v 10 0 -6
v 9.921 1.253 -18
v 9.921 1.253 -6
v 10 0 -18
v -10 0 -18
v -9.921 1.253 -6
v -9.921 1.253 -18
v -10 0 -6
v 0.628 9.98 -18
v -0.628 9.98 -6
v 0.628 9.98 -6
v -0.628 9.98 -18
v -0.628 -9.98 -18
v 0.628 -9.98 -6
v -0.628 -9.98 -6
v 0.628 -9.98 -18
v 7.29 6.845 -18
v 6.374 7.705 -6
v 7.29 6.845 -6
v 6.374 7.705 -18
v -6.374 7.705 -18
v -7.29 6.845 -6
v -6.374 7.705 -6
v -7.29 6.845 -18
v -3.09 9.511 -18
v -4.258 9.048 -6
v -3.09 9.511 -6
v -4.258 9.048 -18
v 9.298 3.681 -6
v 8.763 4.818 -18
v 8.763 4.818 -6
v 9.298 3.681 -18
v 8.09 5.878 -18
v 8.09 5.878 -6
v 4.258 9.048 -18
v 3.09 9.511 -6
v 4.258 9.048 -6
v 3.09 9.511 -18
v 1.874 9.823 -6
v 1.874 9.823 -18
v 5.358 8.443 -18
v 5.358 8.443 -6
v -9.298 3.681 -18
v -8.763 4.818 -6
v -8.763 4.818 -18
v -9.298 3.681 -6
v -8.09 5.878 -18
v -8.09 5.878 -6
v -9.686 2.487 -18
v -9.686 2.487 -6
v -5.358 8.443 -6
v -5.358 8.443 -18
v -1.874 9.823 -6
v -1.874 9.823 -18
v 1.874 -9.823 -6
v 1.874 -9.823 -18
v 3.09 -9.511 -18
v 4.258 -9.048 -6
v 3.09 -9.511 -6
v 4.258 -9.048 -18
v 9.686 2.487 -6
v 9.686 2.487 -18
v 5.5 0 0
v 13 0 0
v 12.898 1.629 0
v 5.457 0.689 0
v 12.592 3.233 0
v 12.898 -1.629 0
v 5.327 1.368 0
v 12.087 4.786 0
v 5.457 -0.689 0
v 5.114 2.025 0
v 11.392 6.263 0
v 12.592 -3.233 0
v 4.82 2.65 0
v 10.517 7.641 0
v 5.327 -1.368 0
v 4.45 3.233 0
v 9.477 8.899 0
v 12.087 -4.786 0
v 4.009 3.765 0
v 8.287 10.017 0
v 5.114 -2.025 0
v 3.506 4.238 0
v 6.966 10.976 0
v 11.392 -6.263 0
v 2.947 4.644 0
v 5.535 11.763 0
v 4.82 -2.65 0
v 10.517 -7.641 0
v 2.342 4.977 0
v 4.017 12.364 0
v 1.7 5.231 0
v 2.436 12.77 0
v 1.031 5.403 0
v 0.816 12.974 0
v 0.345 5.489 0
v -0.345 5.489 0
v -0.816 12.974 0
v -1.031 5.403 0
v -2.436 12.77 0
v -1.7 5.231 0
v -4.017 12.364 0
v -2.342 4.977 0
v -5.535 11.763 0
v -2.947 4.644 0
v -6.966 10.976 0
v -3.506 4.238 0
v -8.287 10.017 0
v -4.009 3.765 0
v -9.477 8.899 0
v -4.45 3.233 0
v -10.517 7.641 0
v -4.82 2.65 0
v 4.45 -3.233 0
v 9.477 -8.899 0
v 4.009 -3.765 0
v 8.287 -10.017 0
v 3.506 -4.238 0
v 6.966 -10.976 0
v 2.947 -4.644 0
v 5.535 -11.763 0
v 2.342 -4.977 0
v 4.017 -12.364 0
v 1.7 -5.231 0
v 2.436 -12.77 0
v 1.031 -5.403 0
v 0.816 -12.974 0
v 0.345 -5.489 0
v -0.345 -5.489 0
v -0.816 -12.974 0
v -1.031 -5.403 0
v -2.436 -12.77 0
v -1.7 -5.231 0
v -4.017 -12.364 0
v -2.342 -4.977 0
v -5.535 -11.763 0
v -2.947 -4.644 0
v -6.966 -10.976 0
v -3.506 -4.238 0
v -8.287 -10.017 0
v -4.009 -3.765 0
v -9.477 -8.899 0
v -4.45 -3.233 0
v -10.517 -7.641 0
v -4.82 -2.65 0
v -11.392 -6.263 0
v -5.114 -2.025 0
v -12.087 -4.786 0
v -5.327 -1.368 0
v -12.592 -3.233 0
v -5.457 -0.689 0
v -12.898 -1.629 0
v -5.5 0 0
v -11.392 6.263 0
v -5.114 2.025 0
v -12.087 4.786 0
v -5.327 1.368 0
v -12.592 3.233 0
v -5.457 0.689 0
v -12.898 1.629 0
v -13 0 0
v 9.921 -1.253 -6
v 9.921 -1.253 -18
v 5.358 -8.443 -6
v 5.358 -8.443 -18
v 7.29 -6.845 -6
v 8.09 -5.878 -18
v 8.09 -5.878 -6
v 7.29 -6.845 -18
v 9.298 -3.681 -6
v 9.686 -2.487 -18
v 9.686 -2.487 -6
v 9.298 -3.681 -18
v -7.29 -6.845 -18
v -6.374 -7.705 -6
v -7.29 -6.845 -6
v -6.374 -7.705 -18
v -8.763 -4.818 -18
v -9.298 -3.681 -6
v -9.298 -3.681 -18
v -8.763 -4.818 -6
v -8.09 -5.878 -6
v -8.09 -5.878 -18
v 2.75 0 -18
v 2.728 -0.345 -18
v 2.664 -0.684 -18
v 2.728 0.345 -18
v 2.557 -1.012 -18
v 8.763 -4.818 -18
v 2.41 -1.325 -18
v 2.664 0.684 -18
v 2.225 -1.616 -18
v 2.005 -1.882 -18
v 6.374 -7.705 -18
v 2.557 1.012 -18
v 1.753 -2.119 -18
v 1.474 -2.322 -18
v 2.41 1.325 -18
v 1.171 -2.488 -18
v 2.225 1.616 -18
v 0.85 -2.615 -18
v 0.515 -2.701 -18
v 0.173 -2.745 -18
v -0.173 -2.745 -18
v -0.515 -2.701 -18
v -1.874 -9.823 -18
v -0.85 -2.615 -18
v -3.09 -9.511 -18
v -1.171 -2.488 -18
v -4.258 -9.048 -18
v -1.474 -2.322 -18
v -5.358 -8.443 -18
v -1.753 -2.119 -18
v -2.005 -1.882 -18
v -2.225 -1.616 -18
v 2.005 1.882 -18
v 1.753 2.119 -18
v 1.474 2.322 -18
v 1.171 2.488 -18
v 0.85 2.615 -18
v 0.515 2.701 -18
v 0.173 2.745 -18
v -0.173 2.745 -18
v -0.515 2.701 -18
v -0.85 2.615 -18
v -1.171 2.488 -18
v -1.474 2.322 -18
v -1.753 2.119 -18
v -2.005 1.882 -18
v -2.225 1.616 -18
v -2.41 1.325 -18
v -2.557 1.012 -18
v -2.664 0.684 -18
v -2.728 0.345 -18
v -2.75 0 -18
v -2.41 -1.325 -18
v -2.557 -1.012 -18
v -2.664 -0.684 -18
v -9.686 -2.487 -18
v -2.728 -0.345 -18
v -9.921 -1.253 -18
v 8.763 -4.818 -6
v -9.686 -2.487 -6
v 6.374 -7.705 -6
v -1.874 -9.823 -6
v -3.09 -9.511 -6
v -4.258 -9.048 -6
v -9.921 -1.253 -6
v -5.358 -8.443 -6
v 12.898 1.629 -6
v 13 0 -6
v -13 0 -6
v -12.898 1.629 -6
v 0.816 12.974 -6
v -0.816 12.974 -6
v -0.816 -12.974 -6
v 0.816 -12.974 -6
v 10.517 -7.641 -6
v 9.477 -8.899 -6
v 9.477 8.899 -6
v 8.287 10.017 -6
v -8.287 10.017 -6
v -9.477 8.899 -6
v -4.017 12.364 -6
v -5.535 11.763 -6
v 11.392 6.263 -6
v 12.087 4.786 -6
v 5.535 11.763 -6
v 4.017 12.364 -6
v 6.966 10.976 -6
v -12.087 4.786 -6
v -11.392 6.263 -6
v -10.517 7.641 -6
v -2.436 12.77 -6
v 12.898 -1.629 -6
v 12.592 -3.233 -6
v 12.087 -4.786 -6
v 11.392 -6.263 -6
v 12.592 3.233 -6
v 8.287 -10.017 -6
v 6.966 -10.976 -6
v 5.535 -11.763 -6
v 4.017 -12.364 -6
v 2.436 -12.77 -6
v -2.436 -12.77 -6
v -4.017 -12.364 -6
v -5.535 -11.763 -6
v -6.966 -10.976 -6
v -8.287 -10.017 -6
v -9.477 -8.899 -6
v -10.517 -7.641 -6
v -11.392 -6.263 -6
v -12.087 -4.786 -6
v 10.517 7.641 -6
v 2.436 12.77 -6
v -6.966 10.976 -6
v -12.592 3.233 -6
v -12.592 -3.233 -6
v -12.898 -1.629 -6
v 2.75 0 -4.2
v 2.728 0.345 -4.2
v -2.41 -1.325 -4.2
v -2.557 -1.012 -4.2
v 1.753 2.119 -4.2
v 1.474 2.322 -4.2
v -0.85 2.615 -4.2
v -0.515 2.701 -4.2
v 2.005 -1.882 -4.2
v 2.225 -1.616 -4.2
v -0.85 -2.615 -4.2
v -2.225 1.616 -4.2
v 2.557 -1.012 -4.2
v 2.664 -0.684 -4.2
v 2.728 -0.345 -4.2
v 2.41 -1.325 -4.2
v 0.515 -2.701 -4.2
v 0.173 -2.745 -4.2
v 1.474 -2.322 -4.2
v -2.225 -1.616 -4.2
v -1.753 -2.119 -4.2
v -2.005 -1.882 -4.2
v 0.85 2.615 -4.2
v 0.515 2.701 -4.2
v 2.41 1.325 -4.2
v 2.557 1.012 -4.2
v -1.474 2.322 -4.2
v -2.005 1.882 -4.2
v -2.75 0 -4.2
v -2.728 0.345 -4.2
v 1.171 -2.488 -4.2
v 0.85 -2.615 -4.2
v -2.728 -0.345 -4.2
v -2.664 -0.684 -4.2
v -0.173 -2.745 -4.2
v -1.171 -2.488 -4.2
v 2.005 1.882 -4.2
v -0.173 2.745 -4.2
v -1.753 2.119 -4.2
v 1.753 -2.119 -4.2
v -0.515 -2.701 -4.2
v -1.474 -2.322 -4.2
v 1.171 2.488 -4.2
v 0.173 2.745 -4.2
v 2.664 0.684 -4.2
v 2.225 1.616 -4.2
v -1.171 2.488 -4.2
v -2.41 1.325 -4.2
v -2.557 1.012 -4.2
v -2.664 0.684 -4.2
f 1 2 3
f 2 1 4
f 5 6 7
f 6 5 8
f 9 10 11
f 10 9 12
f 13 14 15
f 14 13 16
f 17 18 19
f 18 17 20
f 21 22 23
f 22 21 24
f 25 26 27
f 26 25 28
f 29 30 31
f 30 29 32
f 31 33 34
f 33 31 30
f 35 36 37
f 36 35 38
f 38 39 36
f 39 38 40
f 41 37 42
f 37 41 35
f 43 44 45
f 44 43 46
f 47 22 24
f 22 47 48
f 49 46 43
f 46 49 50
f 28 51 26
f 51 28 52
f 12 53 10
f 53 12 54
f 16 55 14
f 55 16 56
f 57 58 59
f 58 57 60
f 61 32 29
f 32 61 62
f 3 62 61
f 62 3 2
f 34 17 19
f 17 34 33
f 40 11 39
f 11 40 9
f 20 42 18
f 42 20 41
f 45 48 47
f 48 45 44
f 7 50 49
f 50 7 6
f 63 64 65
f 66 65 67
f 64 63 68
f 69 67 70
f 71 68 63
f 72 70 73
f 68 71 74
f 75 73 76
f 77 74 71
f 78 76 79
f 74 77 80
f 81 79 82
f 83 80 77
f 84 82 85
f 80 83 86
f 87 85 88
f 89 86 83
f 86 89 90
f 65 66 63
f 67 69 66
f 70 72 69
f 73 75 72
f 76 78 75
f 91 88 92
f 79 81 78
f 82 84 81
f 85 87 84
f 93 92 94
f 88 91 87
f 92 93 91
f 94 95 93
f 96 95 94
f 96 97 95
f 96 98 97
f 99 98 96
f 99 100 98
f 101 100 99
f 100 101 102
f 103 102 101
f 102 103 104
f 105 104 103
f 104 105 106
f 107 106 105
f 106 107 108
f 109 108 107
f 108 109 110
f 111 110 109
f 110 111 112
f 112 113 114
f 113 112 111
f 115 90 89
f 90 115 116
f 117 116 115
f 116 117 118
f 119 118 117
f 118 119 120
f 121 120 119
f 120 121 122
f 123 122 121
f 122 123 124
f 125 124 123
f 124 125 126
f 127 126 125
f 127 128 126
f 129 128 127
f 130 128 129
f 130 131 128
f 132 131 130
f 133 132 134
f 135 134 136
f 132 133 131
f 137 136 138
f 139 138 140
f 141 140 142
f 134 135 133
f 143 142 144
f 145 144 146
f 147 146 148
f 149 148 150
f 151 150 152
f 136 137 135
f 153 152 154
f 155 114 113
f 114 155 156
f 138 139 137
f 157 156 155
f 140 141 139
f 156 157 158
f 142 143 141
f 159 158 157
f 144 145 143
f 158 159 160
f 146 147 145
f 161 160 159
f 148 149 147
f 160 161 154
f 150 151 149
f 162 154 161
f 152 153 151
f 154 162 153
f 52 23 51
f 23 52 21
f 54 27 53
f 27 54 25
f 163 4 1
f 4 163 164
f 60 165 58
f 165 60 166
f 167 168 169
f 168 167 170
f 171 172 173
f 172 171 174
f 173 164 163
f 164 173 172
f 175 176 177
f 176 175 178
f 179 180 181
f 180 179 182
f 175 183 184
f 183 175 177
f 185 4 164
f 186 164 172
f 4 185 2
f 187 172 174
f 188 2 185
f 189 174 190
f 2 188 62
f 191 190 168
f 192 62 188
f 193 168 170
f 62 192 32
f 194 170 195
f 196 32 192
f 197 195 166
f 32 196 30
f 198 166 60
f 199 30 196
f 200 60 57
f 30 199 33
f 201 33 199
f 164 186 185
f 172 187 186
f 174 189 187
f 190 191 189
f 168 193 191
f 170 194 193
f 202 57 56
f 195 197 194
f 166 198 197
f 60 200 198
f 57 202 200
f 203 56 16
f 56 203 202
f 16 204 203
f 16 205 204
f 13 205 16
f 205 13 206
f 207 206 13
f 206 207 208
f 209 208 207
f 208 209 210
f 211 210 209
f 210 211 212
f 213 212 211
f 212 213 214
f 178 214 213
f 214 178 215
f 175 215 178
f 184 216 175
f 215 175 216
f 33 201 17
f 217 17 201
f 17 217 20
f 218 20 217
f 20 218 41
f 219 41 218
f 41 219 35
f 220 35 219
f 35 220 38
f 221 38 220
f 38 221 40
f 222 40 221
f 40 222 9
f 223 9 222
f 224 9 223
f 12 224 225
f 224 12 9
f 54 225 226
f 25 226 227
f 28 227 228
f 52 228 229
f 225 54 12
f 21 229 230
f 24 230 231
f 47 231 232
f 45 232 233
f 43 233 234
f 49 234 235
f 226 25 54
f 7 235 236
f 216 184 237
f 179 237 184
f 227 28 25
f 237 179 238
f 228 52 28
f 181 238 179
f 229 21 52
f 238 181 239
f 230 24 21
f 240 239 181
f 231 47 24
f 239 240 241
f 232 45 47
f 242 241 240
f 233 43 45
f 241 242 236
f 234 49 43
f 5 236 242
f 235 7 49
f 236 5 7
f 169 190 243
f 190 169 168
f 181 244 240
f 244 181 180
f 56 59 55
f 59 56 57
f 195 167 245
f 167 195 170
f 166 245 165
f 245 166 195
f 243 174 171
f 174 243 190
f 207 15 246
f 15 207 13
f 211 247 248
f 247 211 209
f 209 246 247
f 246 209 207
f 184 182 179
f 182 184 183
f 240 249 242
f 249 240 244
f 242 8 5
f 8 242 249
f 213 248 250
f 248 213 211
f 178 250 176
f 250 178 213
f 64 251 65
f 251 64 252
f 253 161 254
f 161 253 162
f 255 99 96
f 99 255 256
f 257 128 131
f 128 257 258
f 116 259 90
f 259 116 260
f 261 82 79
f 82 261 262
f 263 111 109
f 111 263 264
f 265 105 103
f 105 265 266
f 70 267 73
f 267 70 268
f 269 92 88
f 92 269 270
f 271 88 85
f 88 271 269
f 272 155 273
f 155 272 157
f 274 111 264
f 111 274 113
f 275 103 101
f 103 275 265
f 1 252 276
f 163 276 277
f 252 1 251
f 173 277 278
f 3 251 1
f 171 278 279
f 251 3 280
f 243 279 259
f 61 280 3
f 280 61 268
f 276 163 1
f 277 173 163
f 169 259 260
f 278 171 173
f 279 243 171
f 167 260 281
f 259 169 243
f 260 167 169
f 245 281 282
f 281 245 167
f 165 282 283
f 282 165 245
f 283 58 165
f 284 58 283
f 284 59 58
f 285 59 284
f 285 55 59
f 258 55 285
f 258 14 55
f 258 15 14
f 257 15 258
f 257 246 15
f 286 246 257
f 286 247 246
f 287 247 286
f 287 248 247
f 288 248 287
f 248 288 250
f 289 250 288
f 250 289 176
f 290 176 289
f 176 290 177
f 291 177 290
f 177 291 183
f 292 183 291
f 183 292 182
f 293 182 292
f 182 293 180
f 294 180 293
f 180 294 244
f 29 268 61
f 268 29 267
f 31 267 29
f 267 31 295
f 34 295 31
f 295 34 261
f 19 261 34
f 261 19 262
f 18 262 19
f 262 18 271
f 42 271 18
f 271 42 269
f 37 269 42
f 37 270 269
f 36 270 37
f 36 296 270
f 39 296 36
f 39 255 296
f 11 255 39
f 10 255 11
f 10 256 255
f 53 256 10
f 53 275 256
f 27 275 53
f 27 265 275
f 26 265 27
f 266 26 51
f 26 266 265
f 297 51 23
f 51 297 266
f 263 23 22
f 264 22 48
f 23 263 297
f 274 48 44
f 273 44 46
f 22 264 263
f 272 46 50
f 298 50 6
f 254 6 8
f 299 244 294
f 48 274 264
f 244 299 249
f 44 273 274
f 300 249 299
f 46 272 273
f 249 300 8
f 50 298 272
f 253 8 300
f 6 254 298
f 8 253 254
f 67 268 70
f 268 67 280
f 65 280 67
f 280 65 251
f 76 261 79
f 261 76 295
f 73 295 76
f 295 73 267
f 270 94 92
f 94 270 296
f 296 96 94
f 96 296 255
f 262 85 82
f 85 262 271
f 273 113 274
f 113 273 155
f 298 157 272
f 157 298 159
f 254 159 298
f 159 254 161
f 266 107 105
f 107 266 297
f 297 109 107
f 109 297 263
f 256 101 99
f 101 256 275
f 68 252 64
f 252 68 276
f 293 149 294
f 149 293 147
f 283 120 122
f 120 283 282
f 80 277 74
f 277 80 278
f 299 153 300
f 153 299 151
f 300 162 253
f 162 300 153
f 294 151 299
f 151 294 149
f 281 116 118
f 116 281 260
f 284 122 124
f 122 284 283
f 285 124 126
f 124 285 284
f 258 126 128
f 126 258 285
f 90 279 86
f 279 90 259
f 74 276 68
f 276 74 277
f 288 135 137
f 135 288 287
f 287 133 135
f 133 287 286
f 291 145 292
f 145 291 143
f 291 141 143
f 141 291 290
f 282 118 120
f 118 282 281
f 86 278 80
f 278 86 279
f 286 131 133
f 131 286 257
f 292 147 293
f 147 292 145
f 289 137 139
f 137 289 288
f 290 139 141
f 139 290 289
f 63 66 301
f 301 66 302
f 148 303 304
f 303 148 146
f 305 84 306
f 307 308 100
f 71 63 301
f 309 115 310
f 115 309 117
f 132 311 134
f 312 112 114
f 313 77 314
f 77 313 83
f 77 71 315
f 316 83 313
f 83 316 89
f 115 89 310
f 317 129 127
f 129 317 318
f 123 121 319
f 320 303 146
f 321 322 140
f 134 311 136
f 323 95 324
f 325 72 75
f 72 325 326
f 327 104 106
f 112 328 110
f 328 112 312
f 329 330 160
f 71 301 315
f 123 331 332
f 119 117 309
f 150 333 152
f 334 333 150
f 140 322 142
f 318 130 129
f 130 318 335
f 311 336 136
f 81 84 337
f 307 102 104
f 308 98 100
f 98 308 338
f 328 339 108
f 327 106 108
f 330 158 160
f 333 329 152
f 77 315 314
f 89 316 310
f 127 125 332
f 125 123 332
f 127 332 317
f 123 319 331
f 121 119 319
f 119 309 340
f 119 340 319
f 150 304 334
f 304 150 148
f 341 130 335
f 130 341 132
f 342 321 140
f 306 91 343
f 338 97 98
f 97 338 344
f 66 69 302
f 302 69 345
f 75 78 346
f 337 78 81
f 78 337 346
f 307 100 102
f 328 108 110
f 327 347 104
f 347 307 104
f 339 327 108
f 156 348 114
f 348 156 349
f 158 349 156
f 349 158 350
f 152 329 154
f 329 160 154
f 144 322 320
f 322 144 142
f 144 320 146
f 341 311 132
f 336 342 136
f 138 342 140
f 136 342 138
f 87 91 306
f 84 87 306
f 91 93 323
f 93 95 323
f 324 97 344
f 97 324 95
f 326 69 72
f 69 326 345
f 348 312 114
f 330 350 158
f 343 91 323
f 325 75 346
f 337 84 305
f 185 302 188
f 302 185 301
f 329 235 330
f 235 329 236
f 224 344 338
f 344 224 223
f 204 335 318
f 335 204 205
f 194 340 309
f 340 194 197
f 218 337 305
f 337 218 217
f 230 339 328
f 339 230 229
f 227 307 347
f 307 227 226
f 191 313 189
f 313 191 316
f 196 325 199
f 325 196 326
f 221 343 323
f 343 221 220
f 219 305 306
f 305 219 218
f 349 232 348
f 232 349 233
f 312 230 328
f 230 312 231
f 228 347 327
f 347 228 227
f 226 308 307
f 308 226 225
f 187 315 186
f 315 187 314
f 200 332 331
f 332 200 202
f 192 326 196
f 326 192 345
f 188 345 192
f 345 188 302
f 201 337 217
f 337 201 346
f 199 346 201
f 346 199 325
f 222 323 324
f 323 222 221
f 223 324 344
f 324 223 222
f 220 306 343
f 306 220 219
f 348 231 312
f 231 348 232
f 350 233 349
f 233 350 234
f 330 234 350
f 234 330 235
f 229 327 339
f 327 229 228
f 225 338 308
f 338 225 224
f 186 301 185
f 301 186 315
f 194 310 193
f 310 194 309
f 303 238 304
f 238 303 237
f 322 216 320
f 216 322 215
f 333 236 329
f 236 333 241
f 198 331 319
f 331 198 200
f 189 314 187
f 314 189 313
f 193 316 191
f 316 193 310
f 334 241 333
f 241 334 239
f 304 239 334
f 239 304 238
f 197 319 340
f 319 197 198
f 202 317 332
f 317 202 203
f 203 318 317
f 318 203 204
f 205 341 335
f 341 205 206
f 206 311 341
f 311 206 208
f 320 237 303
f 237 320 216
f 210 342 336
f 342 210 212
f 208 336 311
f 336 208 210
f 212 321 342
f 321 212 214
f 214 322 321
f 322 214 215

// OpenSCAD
$fn = 50;


difference() {
	union() {
		translate(v = [0, 0, -18.0000000000]) {
			cylinder(h = 18, r = 10.0000000000);
		}
		translate(v = [0, 0, -6.0000000000]) {
			cylinder(h = 6, r = 13.0000000000);
		}
	}
	union() {
		translate(v = [0, 0, 0]) {
			rotate(a = [0, 0, 0]) {
				difference() {
					union() {
						#translate(v = [0, 0, -18.0000000000]) {
							cylinder(h = 18, r = 2.2500000000);
						}
						#translate(v = [0, 0, -4.2000000000]) {
							cylinder(h = 4.2000000000, r1 = 2.7500000000, r2 = 5.5000000000);
						}
						#translate(v = [0, 0, -18.0000000000]) {
							cylinder(h = 18, r = 2.7500000000);
						}
						#translate(v = [0, 0, -18.0000000000]) {
							cylinder(h = 18, r = 2.2500000000);
						}
					}
					union();
				}
			}
		}
	}
}
